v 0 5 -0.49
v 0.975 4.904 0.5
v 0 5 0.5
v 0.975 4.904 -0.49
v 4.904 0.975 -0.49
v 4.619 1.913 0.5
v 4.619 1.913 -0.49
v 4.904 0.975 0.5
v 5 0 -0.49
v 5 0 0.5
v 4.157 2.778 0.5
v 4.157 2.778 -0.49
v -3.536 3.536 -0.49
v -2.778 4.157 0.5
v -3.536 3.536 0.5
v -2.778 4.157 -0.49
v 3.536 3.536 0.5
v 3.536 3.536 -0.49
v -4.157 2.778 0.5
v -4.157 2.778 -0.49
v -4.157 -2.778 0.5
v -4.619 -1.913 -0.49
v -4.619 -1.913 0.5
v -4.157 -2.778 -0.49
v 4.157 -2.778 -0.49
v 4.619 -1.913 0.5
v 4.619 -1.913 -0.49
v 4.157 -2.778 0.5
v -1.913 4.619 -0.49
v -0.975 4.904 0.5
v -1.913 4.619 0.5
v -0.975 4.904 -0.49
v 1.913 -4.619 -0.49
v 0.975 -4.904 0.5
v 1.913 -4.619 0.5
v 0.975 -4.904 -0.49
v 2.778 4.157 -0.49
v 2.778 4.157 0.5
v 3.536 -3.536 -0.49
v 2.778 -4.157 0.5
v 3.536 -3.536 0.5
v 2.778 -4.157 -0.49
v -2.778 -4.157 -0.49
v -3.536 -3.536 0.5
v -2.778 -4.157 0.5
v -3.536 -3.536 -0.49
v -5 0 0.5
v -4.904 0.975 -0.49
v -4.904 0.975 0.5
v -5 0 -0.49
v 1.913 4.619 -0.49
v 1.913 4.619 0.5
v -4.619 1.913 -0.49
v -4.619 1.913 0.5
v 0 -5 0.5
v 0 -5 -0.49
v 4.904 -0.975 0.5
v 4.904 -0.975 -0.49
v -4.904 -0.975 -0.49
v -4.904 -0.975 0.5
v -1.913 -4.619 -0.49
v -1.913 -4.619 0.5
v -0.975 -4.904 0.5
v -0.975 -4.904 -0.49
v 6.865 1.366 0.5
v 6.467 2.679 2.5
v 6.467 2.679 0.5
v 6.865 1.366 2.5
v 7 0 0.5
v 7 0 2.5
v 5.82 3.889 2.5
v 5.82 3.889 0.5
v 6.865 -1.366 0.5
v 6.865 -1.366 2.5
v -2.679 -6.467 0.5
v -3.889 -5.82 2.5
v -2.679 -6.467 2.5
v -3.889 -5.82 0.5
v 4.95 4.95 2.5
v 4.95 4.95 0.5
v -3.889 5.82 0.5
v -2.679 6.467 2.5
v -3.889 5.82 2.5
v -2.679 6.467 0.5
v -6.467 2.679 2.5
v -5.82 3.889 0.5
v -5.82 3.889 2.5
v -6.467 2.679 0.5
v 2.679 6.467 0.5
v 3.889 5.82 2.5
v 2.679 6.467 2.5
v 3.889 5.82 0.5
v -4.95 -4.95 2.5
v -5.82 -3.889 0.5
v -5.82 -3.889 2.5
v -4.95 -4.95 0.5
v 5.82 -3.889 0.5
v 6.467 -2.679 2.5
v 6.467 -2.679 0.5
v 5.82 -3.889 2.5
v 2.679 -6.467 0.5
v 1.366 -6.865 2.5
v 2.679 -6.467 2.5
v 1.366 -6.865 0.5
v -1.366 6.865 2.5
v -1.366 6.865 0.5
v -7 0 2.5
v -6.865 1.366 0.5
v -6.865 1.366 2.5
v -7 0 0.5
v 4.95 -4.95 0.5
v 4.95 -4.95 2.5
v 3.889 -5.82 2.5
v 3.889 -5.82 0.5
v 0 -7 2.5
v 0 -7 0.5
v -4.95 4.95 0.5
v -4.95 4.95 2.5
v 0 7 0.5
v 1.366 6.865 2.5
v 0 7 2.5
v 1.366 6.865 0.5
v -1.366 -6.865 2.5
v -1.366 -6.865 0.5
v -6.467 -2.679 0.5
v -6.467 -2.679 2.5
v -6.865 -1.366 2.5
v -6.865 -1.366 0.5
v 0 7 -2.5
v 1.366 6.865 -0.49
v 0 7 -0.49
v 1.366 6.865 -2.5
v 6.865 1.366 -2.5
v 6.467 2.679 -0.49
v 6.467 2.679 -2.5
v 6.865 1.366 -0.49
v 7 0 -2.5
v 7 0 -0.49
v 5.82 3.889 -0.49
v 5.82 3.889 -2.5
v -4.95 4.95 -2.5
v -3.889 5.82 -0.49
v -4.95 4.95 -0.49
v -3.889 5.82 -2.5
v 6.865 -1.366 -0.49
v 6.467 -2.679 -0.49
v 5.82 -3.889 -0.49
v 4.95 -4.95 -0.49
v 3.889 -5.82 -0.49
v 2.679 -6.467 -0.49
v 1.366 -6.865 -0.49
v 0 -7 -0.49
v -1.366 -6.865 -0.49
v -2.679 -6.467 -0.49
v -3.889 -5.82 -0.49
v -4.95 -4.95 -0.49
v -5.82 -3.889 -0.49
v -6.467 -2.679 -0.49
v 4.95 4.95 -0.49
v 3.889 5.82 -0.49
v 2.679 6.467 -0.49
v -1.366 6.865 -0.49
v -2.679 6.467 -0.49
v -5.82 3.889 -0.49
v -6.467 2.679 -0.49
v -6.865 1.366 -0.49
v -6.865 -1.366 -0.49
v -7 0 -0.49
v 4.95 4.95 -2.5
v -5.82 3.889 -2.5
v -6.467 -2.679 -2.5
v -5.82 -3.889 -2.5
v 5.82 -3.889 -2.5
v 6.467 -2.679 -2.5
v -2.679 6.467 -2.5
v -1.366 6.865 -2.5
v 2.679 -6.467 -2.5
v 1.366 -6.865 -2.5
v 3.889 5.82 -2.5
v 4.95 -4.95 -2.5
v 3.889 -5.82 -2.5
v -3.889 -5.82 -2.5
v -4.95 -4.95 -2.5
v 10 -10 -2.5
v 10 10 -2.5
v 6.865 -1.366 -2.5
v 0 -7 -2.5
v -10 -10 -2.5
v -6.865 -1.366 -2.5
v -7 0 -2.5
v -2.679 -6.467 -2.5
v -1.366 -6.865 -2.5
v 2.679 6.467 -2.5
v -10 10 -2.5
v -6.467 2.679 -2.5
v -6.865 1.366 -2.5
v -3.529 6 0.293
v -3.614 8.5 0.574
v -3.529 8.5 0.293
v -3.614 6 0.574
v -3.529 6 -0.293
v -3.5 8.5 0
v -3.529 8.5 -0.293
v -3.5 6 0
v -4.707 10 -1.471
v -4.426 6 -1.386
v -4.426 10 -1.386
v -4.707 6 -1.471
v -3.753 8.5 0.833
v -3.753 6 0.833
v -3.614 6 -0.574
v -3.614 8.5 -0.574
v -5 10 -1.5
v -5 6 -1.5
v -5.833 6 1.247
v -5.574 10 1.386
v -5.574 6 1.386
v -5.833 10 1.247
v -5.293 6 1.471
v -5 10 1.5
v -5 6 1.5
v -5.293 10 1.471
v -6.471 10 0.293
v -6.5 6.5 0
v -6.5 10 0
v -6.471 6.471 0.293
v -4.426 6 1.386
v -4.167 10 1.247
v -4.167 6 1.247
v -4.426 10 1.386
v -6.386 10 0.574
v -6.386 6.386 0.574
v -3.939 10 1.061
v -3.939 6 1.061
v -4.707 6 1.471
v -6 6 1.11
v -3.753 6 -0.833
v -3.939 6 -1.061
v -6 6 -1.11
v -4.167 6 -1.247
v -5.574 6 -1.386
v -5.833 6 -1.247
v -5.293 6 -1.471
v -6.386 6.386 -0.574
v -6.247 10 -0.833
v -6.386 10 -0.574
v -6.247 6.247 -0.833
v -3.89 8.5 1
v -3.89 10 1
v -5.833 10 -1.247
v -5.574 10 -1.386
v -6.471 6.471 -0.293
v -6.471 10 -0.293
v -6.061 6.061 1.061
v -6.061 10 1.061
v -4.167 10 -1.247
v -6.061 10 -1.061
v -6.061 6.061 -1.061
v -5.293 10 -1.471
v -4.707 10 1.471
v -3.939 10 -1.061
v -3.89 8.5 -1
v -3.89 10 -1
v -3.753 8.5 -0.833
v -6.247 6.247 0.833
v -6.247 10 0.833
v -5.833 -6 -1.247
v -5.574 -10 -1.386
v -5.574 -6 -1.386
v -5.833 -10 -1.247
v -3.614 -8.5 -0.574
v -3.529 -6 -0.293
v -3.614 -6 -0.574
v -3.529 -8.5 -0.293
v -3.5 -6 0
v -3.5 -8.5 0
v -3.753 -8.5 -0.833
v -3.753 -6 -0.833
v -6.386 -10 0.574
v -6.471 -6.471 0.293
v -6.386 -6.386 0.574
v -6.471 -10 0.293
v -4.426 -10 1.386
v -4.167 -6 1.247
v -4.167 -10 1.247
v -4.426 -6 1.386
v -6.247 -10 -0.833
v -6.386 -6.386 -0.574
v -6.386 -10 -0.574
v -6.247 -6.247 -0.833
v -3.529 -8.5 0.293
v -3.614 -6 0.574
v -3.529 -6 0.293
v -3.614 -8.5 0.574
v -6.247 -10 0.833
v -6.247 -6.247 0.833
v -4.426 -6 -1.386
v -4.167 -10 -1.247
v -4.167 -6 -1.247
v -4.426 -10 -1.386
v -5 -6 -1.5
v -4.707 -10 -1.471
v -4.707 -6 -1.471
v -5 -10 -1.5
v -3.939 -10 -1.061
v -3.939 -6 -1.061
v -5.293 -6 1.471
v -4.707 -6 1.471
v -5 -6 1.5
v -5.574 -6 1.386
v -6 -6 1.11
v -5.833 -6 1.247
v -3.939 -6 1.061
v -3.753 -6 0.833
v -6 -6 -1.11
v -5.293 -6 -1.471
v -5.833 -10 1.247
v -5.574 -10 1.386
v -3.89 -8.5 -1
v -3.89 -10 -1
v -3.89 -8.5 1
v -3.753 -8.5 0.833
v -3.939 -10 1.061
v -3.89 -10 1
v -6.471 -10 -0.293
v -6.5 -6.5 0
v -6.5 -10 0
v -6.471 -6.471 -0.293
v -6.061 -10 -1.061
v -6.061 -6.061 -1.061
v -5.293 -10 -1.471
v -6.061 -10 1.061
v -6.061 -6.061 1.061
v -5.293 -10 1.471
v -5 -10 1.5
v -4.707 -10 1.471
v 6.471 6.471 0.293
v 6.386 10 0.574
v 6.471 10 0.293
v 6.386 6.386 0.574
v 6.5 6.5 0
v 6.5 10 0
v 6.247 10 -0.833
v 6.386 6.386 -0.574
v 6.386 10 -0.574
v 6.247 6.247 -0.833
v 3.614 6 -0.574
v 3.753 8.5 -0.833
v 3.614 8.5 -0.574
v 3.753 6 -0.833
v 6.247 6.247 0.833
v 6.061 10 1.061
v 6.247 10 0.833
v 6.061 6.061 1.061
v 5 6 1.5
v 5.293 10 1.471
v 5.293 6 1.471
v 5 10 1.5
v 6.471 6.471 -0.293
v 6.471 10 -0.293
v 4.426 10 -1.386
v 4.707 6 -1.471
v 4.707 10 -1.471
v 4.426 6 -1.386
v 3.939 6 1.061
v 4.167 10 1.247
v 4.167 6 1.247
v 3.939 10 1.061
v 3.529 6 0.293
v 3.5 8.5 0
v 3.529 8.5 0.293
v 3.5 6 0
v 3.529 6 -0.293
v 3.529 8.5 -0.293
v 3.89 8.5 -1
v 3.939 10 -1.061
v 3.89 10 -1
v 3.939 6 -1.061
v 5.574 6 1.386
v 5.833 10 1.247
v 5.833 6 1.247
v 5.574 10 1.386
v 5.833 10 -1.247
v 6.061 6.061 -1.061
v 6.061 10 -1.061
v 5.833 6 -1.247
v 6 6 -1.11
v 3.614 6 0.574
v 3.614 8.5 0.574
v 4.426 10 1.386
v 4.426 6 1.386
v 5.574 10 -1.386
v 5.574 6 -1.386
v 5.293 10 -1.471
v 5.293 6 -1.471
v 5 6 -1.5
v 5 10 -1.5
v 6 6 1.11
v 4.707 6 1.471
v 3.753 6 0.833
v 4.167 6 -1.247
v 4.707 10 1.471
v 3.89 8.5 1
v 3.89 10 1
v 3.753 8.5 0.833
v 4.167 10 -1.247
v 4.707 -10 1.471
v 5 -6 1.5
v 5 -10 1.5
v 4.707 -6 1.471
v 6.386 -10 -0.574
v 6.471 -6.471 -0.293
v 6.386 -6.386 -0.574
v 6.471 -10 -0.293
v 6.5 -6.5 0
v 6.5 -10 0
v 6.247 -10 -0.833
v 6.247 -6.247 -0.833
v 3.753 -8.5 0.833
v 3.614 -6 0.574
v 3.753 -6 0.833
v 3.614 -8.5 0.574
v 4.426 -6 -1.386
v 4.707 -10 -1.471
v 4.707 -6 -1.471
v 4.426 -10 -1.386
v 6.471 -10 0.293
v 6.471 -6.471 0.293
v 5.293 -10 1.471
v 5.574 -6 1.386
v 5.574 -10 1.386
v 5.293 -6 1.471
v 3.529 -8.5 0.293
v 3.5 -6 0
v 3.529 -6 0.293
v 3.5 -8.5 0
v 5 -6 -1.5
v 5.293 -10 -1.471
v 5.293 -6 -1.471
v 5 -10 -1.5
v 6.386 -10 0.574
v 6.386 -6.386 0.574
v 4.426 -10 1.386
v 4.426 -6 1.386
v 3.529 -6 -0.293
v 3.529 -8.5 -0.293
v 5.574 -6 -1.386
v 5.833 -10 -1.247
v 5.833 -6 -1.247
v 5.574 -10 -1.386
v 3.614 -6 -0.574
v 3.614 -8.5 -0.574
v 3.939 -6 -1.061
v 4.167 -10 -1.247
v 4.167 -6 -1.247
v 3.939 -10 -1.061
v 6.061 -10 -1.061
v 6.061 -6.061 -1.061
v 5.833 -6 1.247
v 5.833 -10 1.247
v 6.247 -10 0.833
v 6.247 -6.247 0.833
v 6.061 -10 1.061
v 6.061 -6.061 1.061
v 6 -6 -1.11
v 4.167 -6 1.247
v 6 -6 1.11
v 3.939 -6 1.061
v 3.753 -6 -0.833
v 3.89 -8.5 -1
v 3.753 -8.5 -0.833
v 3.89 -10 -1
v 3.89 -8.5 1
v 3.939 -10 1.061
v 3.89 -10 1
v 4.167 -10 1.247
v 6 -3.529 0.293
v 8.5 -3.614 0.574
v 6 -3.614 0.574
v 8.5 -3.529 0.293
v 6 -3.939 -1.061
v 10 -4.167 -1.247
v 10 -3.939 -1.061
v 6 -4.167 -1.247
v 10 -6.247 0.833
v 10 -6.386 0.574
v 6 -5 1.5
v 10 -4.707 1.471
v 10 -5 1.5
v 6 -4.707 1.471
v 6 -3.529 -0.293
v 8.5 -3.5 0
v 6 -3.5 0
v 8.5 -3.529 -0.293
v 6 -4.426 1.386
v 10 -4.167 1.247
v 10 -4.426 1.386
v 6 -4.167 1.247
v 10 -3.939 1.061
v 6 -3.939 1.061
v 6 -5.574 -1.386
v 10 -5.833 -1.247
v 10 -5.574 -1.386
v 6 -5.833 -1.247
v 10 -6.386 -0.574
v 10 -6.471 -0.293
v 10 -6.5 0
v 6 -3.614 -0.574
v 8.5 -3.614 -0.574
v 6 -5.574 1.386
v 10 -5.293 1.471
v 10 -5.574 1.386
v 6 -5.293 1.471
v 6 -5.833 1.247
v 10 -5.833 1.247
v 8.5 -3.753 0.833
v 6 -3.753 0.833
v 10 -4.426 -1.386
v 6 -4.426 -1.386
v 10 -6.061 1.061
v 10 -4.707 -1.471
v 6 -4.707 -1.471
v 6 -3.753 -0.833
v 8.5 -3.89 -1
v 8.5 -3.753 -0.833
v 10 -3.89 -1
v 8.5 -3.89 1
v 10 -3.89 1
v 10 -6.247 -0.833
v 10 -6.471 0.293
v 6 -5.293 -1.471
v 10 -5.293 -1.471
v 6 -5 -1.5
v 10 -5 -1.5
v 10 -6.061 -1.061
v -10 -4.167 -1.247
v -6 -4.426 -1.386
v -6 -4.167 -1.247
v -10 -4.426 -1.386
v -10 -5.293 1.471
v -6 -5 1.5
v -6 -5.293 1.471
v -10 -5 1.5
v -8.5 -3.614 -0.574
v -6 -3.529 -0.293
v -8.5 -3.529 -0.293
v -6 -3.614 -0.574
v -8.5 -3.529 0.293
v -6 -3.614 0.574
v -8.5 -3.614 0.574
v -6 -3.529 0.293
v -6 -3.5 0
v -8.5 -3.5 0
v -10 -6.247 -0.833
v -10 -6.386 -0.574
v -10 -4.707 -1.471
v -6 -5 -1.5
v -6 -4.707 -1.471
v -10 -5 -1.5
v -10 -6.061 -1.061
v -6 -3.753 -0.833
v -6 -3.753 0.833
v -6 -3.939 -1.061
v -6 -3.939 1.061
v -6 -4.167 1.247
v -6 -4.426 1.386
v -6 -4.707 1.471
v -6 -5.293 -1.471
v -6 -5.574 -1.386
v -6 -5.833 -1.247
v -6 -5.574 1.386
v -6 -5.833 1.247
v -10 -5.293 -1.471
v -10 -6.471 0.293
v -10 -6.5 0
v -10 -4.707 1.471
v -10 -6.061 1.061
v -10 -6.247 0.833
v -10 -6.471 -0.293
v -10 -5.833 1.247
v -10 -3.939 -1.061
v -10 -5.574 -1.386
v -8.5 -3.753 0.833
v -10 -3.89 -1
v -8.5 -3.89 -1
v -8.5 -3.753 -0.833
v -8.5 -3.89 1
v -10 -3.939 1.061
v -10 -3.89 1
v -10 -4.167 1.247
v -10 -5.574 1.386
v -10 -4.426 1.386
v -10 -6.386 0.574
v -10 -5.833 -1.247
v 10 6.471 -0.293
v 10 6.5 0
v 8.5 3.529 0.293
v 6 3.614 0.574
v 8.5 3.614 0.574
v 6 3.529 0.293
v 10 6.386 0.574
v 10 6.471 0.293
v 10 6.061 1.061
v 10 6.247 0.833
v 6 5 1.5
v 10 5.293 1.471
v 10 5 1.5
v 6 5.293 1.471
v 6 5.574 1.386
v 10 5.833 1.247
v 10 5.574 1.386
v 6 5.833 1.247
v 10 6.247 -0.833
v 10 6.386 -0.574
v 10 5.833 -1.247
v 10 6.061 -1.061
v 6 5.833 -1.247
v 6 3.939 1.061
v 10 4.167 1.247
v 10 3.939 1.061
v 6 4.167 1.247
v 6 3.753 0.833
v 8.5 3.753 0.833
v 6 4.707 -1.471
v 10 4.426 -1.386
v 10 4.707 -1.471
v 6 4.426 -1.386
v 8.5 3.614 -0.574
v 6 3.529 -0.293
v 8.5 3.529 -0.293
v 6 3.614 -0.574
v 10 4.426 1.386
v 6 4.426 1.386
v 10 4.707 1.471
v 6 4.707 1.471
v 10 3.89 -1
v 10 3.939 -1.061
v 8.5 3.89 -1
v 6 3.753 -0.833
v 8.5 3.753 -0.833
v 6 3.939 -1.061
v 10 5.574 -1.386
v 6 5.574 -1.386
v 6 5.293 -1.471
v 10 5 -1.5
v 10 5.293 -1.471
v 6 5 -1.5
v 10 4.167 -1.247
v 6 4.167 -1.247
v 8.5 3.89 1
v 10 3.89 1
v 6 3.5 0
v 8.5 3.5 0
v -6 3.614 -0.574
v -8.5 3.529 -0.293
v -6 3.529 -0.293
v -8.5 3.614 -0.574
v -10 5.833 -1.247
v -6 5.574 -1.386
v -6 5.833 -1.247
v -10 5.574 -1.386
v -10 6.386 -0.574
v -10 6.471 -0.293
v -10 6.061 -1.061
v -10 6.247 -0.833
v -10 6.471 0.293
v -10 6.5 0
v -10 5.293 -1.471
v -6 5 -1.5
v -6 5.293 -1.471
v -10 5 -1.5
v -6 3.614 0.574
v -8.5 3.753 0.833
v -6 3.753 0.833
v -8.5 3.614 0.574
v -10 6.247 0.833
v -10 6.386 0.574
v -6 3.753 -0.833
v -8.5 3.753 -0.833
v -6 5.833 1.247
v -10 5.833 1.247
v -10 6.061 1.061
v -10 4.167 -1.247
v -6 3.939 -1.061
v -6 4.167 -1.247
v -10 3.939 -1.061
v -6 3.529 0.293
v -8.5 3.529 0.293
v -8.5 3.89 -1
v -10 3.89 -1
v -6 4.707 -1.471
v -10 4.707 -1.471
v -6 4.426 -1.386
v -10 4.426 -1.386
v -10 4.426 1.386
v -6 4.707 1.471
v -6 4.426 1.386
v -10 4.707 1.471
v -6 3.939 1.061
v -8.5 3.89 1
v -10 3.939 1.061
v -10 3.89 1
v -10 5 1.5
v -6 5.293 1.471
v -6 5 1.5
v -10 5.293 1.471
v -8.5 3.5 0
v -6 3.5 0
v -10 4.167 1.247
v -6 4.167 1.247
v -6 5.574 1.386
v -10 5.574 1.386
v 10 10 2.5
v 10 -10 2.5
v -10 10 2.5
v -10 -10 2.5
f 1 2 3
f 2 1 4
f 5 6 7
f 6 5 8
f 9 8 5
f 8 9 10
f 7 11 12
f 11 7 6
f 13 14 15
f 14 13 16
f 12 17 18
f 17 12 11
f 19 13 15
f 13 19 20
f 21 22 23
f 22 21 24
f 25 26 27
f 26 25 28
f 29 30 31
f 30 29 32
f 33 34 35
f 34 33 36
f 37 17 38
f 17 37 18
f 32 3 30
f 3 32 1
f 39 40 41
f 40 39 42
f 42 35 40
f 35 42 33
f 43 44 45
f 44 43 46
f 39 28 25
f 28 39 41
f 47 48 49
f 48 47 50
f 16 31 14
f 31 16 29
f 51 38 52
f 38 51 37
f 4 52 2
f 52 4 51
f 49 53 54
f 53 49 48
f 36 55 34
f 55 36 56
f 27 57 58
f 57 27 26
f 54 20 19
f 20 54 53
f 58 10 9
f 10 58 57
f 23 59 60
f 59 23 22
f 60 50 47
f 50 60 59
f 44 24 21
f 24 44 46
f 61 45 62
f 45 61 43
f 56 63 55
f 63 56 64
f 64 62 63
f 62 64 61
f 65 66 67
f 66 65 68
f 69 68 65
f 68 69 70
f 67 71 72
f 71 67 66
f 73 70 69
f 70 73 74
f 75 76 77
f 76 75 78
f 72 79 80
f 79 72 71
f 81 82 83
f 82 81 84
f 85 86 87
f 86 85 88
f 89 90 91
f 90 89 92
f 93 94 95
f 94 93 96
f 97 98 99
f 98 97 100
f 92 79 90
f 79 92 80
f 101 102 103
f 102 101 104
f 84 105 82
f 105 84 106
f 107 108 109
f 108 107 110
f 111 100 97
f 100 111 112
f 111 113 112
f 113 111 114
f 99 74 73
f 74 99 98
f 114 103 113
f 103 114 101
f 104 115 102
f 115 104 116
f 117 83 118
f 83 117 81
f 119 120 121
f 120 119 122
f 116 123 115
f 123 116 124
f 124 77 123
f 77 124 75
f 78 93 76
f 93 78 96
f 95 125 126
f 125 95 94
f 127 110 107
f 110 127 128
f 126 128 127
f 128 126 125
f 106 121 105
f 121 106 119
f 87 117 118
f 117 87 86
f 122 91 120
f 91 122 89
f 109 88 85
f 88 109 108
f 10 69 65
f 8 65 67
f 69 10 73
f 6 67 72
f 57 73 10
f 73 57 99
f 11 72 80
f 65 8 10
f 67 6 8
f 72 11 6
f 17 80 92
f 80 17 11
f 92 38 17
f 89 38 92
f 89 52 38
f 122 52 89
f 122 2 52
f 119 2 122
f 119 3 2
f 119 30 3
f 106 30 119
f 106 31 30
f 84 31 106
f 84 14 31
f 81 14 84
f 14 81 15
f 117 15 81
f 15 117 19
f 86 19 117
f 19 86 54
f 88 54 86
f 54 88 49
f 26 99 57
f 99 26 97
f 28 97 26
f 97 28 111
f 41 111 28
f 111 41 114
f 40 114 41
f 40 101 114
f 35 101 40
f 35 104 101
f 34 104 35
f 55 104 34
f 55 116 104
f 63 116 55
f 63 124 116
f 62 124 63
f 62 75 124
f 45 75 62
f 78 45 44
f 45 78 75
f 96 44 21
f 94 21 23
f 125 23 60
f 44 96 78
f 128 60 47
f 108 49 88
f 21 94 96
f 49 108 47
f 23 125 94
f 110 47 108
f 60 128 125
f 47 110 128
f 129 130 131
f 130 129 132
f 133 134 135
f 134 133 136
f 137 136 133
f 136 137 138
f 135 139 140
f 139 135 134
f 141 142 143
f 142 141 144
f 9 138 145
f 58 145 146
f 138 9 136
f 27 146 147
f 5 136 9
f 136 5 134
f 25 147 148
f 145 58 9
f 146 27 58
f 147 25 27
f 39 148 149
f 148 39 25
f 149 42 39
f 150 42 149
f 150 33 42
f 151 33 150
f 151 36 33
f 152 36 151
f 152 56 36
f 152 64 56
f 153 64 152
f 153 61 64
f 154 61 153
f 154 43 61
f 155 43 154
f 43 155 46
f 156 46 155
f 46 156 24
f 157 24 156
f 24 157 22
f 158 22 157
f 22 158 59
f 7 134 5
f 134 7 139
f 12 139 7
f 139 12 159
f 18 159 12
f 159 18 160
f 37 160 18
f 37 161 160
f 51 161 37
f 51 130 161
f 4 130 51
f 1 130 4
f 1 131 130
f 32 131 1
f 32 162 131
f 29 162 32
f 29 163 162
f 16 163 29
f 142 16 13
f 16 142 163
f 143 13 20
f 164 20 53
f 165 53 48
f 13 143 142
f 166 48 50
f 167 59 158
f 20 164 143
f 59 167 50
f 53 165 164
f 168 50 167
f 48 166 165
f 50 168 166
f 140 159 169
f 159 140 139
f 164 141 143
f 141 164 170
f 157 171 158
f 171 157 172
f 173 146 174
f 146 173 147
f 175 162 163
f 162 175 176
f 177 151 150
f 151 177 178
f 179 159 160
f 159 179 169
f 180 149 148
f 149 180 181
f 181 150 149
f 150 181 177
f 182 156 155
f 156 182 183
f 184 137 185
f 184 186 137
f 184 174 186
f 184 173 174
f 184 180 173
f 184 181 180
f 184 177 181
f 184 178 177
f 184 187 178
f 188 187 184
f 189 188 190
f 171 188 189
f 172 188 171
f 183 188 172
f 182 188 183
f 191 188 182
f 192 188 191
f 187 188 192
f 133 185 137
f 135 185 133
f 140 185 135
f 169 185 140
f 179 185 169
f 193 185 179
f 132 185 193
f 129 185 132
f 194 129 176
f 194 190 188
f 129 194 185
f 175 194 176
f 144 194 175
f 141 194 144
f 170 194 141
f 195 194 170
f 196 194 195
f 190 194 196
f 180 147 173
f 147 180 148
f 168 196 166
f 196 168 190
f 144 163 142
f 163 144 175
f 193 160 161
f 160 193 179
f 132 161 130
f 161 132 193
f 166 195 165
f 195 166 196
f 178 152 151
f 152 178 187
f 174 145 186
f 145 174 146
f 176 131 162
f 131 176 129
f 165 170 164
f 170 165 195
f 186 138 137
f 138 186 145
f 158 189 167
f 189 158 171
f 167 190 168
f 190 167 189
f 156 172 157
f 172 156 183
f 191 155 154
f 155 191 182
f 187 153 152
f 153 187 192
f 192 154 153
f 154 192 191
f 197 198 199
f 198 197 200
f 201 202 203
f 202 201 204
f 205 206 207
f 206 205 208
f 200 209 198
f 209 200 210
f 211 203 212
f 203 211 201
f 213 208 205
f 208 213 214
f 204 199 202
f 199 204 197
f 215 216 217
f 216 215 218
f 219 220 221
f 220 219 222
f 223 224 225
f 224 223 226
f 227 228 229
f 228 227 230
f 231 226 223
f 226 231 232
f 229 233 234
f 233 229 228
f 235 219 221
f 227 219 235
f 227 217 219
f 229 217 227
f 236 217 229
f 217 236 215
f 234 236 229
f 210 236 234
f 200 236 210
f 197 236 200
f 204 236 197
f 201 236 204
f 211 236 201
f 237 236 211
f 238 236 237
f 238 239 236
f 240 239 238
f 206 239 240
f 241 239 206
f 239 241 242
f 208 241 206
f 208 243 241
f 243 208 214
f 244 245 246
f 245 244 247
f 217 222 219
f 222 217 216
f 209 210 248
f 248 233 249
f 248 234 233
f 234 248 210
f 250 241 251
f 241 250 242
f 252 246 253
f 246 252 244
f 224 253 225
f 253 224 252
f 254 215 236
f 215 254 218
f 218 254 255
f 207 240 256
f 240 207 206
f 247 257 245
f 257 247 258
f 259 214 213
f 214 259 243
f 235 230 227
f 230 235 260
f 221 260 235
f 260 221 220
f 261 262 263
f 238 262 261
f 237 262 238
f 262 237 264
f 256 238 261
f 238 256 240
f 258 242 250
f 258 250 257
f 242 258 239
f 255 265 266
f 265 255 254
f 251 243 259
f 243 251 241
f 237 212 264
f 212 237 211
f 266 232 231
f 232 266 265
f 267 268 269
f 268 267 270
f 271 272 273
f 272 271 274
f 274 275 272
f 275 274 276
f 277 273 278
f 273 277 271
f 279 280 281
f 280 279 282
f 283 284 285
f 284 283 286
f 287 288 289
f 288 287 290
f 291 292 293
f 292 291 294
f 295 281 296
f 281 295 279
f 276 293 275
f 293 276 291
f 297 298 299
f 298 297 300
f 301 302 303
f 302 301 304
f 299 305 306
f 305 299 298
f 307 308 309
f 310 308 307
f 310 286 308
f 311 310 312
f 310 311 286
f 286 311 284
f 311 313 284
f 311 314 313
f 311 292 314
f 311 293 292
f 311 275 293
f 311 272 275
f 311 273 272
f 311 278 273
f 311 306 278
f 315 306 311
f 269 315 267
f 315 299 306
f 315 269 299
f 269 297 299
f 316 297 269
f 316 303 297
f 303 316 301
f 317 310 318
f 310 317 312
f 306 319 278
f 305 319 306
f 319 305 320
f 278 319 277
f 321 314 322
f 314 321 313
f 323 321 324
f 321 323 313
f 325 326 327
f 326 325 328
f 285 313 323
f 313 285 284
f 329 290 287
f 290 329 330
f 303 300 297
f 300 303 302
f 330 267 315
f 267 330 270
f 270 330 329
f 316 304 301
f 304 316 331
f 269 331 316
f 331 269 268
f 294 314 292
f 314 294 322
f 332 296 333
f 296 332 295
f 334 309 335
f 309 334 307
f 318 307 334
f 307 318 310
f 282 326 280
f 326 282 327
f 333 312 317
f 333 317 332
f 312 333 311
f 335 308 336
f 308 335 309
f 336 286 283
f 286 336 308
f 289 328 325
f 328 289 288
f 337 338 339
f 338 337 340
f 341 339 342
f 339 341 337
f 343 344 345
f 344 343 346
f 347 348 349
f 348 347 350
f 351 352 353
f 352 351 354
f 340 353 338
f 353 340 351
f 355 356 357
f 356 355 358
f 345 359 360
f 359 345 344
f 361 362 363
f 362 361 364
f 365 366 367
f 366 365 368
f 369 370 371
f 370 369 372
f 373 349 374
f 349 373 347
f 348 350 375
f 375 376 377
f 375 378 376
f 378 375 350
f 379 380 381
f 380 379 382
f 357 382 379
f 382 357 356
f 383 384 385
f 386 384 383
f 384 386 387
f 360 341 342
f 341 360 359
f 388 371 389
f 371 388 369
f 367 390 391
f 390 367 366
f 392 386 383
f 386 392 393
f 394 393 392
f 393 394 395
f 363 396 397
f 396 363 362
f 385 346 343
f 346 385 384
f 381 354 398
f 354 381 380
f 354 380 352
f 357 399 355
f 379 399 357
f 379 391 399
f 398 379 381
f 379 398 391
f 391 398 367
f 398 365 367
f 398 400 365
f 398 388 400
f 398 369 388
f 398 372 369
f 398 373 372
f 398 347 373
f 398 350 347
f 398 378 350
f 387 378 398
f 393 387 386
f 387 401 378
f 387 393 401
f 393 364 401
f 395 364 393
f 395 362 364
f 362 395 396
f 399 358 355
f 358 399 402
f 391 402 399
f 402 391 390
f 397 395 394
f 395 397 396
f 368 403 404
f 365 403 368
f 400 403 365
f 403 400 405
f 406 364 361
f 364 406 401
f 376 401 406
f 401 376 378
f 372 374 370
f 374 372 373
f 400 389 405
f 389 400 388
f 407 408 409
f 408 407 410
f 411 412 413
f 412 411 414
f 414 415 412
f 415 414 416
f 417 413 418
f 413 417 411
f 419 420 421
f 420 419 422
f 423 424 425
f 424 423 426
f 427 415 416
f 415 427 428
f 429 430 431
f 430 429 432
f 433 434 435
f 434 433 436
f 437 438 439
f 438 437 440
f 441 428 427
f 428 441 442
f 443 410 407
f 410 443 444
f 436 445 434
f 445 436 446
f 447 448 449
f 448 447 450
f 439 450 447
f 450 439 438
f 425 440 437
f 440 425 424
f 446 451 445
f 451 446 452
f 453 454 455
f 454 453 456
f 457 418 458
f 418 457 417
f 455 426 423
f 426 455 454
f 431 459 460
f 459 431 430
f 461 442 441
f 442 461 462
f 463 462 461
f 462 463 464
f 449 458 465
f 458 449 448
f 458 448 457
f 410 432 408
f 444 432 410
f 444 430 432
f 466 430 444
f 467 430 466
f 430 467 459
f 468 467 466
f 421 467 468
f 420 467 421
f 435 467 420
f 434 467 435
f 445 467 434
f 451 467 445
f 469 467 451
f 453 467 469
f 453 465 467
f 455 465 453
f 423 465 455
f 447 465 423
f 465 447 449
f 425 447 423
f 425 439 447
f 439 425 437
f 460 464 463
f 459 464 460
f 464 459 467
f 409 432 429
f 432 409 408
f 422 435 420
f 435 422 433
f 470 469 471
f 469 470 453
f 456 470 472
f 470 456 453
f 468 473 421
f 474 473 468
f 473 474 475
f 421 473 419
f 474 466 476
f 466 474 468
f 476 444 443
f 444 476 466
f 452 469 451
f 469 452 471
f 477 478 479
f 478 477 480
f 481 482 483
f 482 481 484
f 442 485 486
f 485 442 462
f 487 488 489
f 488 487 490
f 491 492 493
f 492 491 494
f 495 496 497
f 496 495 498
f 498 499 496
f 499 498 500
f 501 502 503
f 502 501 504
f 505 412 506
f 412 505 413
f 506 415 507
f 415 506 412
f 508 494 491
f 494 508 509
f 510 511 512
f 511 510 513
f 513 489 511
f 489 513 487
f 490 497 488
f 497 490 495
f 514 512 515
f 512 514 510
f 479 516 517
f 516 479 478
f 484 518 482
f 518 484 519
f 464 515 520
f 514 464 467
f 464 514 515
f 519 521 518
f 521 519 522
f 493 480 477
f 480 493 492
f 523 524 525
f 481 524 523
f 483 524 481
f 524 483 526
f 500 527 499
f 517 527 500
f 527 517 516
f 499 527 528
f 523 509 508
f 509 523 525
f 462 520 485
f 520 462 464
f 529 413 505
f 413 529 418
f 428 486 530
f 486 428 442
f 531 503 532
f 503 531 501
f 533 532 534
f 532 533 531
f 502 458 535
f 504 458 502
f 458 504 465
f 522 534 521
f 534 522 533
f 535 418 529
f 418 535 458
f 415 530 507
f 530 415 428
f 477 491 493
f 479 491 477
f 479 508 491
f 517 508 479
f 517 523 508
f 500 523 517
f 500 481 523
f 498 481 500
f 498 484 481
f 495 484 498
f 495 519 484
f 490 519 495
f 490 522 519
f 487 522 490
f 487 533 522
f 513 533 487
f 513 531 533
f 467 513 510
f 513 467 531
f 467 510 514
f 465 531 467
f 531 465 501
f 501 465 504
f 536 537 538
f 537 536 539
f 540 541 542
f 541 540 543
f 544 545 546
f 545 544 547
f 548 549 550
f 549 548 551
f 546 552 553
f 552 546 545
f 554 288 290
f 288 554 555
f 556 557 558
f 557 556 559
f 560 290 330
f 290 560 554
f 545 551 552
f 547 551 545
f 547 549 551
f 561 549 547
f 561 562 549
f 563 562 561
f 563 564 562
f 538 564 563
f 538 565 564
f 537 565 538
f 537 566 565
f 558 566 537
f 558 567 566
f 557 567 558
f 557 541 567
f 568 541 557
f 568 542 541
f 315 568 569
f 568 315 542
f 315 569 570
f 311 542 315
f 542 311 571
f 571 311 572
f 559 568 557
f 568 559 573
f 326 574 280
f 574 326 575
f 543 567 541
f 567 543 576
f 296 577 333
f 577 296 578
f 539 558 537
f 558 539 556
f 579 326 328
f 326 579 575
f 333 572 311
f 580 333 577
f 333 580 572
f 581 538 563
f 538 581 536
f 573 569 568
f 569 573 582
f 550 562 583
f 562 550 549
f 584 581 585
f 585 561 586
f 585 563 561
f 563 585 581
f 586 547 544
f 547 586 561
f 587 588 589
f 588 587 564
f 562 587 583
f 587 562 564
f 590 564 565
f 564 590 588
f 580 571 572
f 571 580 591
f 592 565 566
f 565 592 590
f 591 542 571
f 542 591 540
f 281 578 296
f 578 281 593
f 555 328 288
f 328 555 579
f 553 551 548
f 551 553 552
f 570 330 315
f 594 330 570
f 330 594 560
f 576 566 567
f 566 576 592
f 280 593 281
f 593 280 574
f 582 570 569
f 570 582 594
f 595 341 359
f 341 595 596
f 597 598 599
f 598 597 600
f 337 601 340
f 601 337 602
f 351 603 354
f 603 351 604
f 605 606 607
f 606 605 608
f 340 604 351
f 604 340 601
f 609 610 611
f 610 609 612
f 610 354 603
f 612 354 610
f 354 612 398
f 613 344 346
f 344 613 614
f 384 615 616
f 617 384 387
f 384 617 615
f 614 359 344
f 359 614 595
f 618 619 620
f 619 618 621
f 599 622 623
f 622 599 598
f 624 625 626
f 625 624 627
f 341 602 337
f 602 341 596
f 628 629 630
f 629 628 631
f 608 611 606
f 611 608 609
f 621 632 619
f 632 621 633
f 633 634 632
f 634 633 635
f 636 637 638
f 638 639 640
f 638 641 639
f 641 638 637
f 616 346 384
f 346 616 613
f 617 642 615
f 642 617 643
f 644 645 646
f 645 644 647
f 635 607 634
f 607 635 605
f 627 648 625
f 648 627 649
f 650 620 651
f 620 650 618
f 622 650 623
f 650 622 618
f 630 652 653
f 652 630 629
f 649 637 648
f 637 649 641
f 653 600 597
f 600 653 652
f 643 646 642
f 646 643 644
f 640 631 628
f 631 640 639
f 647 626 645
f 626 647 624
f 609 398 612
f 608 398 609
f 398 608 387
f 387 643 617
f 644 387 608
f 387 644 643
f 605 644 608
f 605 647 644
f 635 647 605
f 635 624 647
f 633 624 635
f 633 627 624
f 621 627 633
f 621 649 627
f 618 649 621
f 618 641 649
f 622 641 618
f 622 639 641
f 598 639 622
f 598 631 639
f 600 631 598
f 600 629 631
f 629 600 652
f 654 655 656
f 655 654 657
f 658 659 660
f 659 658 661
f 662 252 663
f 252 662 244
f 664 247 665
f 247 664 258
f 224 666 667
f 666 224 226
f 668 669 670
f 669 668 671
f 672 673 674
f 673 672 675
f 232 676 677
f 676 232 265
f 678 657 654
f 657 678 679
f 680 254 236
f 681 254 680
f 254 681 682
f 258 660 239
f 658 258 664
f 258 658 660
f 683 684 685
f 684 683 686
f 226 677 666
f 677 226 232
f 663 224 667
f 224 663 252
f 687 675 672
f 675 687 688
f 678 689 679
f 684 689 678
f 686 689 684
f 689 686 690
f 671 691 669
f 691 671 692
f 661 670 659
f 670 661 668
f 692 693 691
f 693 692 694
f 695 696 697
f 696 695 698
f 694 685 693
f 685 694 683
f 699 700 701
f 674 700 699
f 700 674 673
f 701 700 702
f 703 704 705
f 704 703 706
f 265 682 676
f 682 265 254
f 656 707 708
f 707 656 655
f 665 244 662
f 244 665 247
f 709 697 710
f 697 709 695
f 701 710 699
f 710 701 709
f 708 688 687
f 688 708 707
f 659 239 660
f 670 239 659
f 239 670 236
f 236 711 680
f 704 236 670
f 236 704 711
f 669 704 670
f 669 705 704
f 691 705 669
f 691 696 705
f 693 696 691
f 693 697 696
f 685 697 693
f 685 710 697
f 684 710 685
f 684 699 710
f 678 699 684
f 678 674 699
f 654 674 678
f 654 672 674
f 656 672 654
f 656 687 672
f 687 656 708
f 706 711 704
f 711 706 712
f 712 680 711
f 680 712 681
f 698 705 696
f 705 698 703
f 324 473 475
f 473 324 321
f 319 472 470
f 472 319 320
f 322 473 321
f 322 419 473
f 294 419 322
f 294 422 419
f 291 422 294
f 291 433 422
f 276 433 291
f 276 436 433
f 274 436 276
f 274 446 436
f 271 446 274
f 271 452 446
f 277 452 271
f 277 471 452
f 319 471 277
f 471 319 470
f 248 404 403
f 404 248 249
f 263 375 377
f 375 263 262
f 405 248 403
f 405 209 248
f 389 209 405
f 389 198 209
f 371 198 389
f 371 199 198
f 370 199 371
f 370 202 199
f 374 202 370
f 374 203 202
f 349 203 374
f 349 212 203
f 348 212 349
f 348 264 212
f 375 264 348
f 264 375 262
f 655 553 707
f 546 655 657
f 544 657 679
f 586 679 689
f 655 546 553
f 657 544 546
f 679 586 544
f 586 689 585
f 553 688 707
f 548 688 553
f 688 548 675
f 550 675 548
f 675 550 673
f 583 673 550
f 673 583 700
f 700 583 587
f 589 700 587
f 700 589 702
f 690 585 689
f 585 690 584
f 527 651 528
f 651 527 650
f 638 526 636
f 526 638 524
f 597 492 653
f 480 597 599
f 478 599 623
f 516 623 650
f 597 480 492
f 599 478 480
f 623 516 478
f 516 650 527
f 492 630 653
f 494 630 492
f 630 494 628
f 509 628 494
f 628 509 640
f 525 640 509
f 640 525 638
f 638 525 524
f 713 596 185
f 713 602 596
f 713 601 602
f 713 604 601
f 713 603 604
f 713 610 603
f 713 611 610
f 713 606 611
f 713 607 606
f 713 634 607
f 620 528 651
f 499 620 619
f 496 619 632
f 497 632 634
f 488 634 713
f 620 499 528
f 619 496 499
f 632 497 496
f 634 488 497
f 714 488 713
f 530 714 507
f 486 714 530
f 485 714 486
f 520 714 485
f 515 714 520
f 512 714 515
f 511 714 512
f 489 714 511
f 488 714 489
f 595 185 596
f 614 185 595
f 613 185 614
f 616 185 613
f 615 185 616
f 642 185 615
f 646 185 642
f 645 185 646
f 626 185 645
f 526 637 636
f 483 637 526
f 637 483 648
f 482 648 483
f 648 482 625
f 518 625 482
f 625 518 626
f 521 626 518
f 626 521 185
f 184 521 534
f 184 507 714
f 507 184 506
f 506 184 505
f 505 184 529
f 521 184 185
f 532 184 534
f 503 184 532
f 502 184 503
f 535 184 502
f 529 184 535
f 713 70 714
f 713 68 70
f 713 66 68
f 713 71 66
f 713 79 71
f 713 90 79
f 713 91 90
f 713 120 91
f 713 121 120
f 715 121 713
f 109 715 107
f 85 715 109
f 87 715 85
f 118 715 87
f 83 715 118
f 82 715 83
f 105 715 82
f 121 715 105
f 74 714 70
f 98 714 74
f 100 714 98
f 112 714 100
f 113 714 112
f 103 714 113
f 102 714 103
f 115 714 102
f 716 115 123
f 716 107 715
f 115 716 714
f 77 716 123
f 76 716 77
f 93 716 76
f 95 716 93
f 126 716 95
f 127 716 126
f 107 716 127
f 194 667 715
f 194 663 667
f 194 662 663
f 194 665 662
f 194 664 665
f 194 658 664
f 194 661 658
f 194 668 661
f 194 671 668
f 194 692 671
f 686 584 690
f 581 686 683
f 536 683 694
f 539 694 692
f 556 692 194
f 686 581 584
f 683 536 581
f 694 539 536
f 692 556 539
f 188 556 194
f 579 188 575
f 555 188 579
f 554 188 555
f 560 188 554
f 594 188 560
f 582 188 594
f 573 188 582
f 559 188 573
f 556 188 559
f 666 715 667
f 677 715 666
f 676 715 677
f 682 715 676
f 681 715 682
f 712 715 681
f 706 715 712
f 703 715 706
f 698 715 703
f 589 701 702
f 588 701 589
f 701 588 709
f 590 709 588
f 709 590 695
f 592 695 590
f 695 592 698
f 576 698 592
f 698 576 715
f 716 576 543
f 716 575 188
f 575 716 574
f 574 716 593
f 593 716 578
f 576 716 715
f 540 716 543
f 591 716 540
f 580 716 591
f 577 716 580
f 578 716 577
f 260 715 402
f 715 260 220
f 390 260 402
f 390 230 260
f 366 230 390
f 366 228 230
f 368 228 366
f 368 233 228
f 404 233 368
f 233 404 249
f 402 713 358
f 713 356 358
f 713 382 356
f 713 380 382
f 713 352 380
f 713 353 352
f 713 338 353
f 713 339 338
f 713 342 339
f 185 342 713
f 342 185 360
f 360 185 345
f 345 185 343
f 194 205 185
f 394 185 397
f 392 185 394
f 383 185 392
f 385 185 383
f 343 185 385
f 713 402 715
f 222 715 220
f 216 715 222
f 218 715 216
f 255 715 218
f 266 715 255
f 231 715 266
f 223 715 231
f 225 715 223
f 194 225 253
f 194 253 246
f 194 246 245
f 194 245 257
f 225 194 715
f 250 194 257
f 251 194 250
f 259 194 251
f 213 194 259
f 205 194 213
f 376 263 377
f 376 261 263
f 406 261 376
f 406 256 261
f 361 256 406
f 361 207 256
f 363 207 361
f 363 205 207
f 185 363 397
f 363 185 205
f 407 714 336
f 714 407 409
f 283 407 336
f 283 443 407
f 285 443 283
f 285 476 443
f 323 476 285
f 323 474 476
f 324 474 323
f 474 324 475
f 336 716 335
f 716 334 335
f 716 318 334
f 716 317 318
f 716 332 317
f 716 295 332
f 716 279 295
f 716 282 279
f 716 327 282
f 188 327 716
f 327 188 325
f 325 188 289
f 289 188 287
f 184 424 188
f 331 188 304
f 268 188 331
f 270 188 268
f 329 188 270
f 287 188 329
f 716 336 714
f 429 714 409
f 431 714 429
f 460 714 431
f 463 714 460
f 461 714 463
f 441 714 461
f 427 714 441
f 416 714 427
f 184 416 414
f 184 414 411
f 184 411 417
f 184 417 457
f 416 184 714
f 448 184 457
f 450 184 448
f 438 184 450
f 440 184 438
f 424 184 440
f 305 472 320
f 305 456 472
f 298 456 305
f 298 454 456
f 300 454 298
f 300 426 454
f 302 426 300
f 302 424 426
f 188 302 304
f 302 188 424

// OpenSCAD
// ============================================================
// PLATE — Design System 3D Modular
// ============================================================
// Placa base do sistema modular.
// Cada célula da placa referencia 1 ATOM — os furos coincidem
// quando os parâmetros cell_size, hole_d e relief são iguais.
//
// Compatibilidade com ATOM:
//   plate.cell_size   == atom.atom_size
//   plate.hole_d      == atom.hole_d
//   plate.relief_*    == atom.relief_*
//
// Espessura mínima recomendada:
//   thickness >= (relief_depth * 2) + 1mm de parede
//   Ex: relief_depth=2 → thickness mínima = 5mm
//
// Parâmetros:
// - cell_size     : tamanho de 1 célula (deve = atom_size)
// - qty_x         : quantidade de células no eixo X
// - qty_y         : quantidade de células no eixo Y
// - thickness     : espessura da placa (mm)
// - hole_d        : diâmetro do furo (deve = atom.hole_d)
// - relief_depth  : profundidade do baixo relevo (ambos os lados)
// - relief_margin : margem ao redor do furo
// - border_radius : arredondamento das bordas externas
// ============================================================

/* [Tamanho da Placa] */

// Tamanho de 1 célula — deve ser igual ao atom_size do ATOM
cell_size = 20; // [5:1:100]

// Quantidade de células no eixo X
qty_x = 1; // [1:1:20]

// Quantidade de células no eixo Y
qty_y = 1; // [1:1:20]

// Espessura da placa — mínimo: (relief_depth * 2) + 1mm
// Com relief_depth=2 o mínimo é 5mm
thickness = 5; // [1:0.5:30]

/* [Furos — manter igual ao ATOM para coincidir] */

// Diâmetro do furo passante (mm)
hole_d = 10; // [0.5:0.1:15]

// Profundidade do baixo relevo em cada face (topo e base)
relief_depth = 2; // [0.1:0.05:5]

// Margem do baixo relevo ao redor do furo (mm)
relief_margin = 2; // [0.5:0.1:5]

/* [Bordas] */

// Raio de arredondamento das bordas externas (0 = sem arredondamento)
border_radius = 0; // [0:0.1:5]

/* [Furos de borda — interface lateral] */

// Diâmetro dos furos de borda (0 = sem furos de borda)
// Máximo seguro: thickness - 2mm de parede
edge_hole_d = 3; // [0:0.1:5]

// Profundidade dos furos de borda (mm)
edge_hole_depth = 4; // [1:0.5:10]

// Profundidade do rebaixo de borda — pocket entre os 2 furos
// de cada célula; recebe a alma do BRIDGE e a nervura do
// CORNER (0 = desativado)
edge_relief_depth = 1.5; // [0:0.1:3]

// Altura do rebaixo de borda, na direção da espessura (mm)
edge_relief_height = 2; // [0:0.1:4]

/* [Qualidade] */

// Segmentos dos cilindros
$fn = 32;

// ============================================================
// CALCULADOS
// ============================================================

// Diâmetro total do baixo relevo
relief_d = hole_d + (relief_margin * 2);

// Dimensões totais da placa
total_x = cell_size * qty_x;
total_y = cell_size * qty_y;

// Relief seguro — limitado a no máximo metade da espessura
// para garantir parede entre os dois relevos
safe_relief = min(relief_depth, (thickness / 2) - 0.5);

// Raio seguro — limitado pela espessura e pelo tamanho mínimo
safe_radius = min(border_radius, thickness / 2 - 0.01, cell_size / 2 - 0.01);

// ============================================================
// MÓDULOS
// ============================================================

// ------------------------------------------------------------
// Módulo: corpo da placa com border radius opcional
// ------------------------------------------------------------
module plate_body() {
    if (safe_radius <= 0) {
        cube([total_x, total_y, thickness], center = true);
    } else {
        inner_x = total_x - 2 * safe_radius;
        inner_y = total_y - 2 * safe_radius;
        inner_z = thickness - 2 * safe_radius;
        minkowski() {
            cube([inner_x, inner_y, inner_z], center = true);
            sphere(r = safe_radius);
        }
    }
}

// ------------------------------------------------------------
// Módulo: furo + baixo relevo em ambos os lados de uma célula
// ------------------------------------------------------------
module cell_hole() {
    // Furo passante em Z
    cylinder(d = hole_d, h = thickness + 1, center = true);

    // Baixo relevo face TOPO (+Z)
    // parte da face superior e vai para dentro
    translate([0, 0, thickness / 2 - safe_relief])
        cylinder(d = relief_d, h = safe_relief + 0.01);

    // Baixo relevo face BASE (-Z)
    // parte da face inferior e vai para dentro
    translate([0, 0, -thickness / 2])
        cylinder(d = relief_d, h = safe_relief + 0.01);
}

// ------------------------------------------------------------
// Módulo: grade de furos alinhada com o grid de ATOMs
// ------------------------------------------------------------
module hole_grid() {
    for (ix = [0 : qty_x - 1])
        for (iy = [0 : qty_y - 1])
            translate([
                ix * cell_size + cell_size / 2 - total_x / 2,
                iy * cell_size + cell_size / 2 - total_y / 2,
                0
            ])
            cell_hole();
}

// ------------------------------------------------------------
// Módulo: furos de borda — 2 por célula, passo cell_size/2
// Centrados na espessura, em todas as 4 bordas
// Posições: centro da célula ± cell_size/4 → passo uniforme
// de 10mm inclusive atravessando junções entre PLATEs
// ------------------------------------------------------------
module edge_holes() {
    eps = 0.01;

    // Bordas +Y e -Y (furos ao longo do eixo X)
    for (ix = [0 : qty_x - 1], s = [-1, 1]) {
        x = ix * cell_size + cell_size / 2 + s * cell_size / 4 - total_x / 2;

        // Borda +Y — rotate([90,0,0]) aponta para -Y (fura para dentro)
        translate([x, total_y / 2 + eps, 0])
            rotate([90, 0, 0])
                cylinder(d = edge_hole_d, h = edge_hole_depth + eps);

        // Borda -Y — rotate NEGATIVO aponta para +Y
        translate([x, -total_y / 2 - eps, 0])
            rotate([-90, 0, 0])
                cylinder(d = edge_hole_d, h = edge_hole_depth + eps);
    }

    // Bordas +X e -X (furos ao longo do eixo Y)
    for (iy = [0 : qty_y - 1], s = [-1, 1]) {
        y = iy * cell_size + cell_size / 2 + s * cell_size / 4 - total_y / 2;

        // Borda +X — fura para dentro (-X)
        translate([total_x / 2 + eps, y, 0])
            rotate([0, -90, 0])
                cylinder(d = edge_hole_d, h = edge_hole_depth + eps);

        // Borda -X — fura para dentro (+X)
        translate([-total_x / 2 - eps, y, 0])
            rotate([0, 90, 0])
                cylinder(d = edge_hole_d, h = edge_hole_depth + eps);
    }
}

// ------------------------------------------------------------
// Módulo: rebaixos de borda — pocket entre os 2 furos de cada
// célula, centrado na espessura, nas 4 bordas
// ------------------------------------------------------------
module edge_reliefs() {
    eps = 0.01;
    len = cell_size / 2;   // vão entre os 2 furos da célula

    // Bordas +Y e -Y
    for (ix = [0 : qty_x - 1]) {
        xc = ix * cell_size + cell_size / 2 - total_x / 2;
        for (sy = [-1, 1])
            translate([xc, sy * (total_y / 2 - edge_relief_depth / 2 + eps / 2), 0])
                cube([len, edge_relief_depth + eps, edge_relief_height], center = true);
    }

    // Bordas +X e -X
    for (iy = [0 : qty_y - 1]) {
        yc = iy * cell_size + cell_size / 2 - total_y / 2;
        for (sx = [-1, 1])
            translate([sx * (total_x / 2 - edge_relief_depth / 2 + eps / 2), yc, 0])
                cube([edge_relief_depth + eps, len, edge_relief_height], center = true);
    }
}

// ------------------------------------------------------------
// Módulo: PLATE completa
// ------------------------------------------------------------
module plate() {
    difference() {
        plate_body();
        hole_grid();
        if (edge_hole_d > 0)
            edge_holes();
        if (edge_relief_depth > 0 && edge_relief_height > 0)
            edge_reliefs();
    }
}

// ============================================================
// RENDER
// ============================================================
part_color = [0.35, 0.38, 0.42];
color(part_color) plate();

// ============================================================
// INFO — dimensões no console
// ============================================================
echo("=== PLATE ===");
echo(str("Dimensões          : ", total_x, " × ", total_y, " × ", thickness, "mm (", qty_x, "×", qty_y, " células)"));
echo(str("Furos de face      : ", qty_x * qty_y, " × Ø", hole_d, "mm"));
echo(str("Furos de borda     : ", edge_hole_d > 0 ? str((qty_x + qty_y) * 4, " × Ø", edge_hole_d, "mm, prof. ", edge_hole_depth, "mm, passo ", cell_size / 2, "mm") : "desativados"));
echo(str("Rebaixos de borda  : ", edge_relief_depth > 0 ? str(cell_size / 2, " × ", edge_relief_depth, " × ", edge_relief_height, "mm por célula") : "desativados"));
echo("---");
echo(str("Parede nos furos de borda: ", edge_hole_d == 0 || thickness >= edge_hole_d + 2 ? "SIM (>= 1mm por lado)" : "VERIFICAR (thickness < edge_hole_d + 2)"));
